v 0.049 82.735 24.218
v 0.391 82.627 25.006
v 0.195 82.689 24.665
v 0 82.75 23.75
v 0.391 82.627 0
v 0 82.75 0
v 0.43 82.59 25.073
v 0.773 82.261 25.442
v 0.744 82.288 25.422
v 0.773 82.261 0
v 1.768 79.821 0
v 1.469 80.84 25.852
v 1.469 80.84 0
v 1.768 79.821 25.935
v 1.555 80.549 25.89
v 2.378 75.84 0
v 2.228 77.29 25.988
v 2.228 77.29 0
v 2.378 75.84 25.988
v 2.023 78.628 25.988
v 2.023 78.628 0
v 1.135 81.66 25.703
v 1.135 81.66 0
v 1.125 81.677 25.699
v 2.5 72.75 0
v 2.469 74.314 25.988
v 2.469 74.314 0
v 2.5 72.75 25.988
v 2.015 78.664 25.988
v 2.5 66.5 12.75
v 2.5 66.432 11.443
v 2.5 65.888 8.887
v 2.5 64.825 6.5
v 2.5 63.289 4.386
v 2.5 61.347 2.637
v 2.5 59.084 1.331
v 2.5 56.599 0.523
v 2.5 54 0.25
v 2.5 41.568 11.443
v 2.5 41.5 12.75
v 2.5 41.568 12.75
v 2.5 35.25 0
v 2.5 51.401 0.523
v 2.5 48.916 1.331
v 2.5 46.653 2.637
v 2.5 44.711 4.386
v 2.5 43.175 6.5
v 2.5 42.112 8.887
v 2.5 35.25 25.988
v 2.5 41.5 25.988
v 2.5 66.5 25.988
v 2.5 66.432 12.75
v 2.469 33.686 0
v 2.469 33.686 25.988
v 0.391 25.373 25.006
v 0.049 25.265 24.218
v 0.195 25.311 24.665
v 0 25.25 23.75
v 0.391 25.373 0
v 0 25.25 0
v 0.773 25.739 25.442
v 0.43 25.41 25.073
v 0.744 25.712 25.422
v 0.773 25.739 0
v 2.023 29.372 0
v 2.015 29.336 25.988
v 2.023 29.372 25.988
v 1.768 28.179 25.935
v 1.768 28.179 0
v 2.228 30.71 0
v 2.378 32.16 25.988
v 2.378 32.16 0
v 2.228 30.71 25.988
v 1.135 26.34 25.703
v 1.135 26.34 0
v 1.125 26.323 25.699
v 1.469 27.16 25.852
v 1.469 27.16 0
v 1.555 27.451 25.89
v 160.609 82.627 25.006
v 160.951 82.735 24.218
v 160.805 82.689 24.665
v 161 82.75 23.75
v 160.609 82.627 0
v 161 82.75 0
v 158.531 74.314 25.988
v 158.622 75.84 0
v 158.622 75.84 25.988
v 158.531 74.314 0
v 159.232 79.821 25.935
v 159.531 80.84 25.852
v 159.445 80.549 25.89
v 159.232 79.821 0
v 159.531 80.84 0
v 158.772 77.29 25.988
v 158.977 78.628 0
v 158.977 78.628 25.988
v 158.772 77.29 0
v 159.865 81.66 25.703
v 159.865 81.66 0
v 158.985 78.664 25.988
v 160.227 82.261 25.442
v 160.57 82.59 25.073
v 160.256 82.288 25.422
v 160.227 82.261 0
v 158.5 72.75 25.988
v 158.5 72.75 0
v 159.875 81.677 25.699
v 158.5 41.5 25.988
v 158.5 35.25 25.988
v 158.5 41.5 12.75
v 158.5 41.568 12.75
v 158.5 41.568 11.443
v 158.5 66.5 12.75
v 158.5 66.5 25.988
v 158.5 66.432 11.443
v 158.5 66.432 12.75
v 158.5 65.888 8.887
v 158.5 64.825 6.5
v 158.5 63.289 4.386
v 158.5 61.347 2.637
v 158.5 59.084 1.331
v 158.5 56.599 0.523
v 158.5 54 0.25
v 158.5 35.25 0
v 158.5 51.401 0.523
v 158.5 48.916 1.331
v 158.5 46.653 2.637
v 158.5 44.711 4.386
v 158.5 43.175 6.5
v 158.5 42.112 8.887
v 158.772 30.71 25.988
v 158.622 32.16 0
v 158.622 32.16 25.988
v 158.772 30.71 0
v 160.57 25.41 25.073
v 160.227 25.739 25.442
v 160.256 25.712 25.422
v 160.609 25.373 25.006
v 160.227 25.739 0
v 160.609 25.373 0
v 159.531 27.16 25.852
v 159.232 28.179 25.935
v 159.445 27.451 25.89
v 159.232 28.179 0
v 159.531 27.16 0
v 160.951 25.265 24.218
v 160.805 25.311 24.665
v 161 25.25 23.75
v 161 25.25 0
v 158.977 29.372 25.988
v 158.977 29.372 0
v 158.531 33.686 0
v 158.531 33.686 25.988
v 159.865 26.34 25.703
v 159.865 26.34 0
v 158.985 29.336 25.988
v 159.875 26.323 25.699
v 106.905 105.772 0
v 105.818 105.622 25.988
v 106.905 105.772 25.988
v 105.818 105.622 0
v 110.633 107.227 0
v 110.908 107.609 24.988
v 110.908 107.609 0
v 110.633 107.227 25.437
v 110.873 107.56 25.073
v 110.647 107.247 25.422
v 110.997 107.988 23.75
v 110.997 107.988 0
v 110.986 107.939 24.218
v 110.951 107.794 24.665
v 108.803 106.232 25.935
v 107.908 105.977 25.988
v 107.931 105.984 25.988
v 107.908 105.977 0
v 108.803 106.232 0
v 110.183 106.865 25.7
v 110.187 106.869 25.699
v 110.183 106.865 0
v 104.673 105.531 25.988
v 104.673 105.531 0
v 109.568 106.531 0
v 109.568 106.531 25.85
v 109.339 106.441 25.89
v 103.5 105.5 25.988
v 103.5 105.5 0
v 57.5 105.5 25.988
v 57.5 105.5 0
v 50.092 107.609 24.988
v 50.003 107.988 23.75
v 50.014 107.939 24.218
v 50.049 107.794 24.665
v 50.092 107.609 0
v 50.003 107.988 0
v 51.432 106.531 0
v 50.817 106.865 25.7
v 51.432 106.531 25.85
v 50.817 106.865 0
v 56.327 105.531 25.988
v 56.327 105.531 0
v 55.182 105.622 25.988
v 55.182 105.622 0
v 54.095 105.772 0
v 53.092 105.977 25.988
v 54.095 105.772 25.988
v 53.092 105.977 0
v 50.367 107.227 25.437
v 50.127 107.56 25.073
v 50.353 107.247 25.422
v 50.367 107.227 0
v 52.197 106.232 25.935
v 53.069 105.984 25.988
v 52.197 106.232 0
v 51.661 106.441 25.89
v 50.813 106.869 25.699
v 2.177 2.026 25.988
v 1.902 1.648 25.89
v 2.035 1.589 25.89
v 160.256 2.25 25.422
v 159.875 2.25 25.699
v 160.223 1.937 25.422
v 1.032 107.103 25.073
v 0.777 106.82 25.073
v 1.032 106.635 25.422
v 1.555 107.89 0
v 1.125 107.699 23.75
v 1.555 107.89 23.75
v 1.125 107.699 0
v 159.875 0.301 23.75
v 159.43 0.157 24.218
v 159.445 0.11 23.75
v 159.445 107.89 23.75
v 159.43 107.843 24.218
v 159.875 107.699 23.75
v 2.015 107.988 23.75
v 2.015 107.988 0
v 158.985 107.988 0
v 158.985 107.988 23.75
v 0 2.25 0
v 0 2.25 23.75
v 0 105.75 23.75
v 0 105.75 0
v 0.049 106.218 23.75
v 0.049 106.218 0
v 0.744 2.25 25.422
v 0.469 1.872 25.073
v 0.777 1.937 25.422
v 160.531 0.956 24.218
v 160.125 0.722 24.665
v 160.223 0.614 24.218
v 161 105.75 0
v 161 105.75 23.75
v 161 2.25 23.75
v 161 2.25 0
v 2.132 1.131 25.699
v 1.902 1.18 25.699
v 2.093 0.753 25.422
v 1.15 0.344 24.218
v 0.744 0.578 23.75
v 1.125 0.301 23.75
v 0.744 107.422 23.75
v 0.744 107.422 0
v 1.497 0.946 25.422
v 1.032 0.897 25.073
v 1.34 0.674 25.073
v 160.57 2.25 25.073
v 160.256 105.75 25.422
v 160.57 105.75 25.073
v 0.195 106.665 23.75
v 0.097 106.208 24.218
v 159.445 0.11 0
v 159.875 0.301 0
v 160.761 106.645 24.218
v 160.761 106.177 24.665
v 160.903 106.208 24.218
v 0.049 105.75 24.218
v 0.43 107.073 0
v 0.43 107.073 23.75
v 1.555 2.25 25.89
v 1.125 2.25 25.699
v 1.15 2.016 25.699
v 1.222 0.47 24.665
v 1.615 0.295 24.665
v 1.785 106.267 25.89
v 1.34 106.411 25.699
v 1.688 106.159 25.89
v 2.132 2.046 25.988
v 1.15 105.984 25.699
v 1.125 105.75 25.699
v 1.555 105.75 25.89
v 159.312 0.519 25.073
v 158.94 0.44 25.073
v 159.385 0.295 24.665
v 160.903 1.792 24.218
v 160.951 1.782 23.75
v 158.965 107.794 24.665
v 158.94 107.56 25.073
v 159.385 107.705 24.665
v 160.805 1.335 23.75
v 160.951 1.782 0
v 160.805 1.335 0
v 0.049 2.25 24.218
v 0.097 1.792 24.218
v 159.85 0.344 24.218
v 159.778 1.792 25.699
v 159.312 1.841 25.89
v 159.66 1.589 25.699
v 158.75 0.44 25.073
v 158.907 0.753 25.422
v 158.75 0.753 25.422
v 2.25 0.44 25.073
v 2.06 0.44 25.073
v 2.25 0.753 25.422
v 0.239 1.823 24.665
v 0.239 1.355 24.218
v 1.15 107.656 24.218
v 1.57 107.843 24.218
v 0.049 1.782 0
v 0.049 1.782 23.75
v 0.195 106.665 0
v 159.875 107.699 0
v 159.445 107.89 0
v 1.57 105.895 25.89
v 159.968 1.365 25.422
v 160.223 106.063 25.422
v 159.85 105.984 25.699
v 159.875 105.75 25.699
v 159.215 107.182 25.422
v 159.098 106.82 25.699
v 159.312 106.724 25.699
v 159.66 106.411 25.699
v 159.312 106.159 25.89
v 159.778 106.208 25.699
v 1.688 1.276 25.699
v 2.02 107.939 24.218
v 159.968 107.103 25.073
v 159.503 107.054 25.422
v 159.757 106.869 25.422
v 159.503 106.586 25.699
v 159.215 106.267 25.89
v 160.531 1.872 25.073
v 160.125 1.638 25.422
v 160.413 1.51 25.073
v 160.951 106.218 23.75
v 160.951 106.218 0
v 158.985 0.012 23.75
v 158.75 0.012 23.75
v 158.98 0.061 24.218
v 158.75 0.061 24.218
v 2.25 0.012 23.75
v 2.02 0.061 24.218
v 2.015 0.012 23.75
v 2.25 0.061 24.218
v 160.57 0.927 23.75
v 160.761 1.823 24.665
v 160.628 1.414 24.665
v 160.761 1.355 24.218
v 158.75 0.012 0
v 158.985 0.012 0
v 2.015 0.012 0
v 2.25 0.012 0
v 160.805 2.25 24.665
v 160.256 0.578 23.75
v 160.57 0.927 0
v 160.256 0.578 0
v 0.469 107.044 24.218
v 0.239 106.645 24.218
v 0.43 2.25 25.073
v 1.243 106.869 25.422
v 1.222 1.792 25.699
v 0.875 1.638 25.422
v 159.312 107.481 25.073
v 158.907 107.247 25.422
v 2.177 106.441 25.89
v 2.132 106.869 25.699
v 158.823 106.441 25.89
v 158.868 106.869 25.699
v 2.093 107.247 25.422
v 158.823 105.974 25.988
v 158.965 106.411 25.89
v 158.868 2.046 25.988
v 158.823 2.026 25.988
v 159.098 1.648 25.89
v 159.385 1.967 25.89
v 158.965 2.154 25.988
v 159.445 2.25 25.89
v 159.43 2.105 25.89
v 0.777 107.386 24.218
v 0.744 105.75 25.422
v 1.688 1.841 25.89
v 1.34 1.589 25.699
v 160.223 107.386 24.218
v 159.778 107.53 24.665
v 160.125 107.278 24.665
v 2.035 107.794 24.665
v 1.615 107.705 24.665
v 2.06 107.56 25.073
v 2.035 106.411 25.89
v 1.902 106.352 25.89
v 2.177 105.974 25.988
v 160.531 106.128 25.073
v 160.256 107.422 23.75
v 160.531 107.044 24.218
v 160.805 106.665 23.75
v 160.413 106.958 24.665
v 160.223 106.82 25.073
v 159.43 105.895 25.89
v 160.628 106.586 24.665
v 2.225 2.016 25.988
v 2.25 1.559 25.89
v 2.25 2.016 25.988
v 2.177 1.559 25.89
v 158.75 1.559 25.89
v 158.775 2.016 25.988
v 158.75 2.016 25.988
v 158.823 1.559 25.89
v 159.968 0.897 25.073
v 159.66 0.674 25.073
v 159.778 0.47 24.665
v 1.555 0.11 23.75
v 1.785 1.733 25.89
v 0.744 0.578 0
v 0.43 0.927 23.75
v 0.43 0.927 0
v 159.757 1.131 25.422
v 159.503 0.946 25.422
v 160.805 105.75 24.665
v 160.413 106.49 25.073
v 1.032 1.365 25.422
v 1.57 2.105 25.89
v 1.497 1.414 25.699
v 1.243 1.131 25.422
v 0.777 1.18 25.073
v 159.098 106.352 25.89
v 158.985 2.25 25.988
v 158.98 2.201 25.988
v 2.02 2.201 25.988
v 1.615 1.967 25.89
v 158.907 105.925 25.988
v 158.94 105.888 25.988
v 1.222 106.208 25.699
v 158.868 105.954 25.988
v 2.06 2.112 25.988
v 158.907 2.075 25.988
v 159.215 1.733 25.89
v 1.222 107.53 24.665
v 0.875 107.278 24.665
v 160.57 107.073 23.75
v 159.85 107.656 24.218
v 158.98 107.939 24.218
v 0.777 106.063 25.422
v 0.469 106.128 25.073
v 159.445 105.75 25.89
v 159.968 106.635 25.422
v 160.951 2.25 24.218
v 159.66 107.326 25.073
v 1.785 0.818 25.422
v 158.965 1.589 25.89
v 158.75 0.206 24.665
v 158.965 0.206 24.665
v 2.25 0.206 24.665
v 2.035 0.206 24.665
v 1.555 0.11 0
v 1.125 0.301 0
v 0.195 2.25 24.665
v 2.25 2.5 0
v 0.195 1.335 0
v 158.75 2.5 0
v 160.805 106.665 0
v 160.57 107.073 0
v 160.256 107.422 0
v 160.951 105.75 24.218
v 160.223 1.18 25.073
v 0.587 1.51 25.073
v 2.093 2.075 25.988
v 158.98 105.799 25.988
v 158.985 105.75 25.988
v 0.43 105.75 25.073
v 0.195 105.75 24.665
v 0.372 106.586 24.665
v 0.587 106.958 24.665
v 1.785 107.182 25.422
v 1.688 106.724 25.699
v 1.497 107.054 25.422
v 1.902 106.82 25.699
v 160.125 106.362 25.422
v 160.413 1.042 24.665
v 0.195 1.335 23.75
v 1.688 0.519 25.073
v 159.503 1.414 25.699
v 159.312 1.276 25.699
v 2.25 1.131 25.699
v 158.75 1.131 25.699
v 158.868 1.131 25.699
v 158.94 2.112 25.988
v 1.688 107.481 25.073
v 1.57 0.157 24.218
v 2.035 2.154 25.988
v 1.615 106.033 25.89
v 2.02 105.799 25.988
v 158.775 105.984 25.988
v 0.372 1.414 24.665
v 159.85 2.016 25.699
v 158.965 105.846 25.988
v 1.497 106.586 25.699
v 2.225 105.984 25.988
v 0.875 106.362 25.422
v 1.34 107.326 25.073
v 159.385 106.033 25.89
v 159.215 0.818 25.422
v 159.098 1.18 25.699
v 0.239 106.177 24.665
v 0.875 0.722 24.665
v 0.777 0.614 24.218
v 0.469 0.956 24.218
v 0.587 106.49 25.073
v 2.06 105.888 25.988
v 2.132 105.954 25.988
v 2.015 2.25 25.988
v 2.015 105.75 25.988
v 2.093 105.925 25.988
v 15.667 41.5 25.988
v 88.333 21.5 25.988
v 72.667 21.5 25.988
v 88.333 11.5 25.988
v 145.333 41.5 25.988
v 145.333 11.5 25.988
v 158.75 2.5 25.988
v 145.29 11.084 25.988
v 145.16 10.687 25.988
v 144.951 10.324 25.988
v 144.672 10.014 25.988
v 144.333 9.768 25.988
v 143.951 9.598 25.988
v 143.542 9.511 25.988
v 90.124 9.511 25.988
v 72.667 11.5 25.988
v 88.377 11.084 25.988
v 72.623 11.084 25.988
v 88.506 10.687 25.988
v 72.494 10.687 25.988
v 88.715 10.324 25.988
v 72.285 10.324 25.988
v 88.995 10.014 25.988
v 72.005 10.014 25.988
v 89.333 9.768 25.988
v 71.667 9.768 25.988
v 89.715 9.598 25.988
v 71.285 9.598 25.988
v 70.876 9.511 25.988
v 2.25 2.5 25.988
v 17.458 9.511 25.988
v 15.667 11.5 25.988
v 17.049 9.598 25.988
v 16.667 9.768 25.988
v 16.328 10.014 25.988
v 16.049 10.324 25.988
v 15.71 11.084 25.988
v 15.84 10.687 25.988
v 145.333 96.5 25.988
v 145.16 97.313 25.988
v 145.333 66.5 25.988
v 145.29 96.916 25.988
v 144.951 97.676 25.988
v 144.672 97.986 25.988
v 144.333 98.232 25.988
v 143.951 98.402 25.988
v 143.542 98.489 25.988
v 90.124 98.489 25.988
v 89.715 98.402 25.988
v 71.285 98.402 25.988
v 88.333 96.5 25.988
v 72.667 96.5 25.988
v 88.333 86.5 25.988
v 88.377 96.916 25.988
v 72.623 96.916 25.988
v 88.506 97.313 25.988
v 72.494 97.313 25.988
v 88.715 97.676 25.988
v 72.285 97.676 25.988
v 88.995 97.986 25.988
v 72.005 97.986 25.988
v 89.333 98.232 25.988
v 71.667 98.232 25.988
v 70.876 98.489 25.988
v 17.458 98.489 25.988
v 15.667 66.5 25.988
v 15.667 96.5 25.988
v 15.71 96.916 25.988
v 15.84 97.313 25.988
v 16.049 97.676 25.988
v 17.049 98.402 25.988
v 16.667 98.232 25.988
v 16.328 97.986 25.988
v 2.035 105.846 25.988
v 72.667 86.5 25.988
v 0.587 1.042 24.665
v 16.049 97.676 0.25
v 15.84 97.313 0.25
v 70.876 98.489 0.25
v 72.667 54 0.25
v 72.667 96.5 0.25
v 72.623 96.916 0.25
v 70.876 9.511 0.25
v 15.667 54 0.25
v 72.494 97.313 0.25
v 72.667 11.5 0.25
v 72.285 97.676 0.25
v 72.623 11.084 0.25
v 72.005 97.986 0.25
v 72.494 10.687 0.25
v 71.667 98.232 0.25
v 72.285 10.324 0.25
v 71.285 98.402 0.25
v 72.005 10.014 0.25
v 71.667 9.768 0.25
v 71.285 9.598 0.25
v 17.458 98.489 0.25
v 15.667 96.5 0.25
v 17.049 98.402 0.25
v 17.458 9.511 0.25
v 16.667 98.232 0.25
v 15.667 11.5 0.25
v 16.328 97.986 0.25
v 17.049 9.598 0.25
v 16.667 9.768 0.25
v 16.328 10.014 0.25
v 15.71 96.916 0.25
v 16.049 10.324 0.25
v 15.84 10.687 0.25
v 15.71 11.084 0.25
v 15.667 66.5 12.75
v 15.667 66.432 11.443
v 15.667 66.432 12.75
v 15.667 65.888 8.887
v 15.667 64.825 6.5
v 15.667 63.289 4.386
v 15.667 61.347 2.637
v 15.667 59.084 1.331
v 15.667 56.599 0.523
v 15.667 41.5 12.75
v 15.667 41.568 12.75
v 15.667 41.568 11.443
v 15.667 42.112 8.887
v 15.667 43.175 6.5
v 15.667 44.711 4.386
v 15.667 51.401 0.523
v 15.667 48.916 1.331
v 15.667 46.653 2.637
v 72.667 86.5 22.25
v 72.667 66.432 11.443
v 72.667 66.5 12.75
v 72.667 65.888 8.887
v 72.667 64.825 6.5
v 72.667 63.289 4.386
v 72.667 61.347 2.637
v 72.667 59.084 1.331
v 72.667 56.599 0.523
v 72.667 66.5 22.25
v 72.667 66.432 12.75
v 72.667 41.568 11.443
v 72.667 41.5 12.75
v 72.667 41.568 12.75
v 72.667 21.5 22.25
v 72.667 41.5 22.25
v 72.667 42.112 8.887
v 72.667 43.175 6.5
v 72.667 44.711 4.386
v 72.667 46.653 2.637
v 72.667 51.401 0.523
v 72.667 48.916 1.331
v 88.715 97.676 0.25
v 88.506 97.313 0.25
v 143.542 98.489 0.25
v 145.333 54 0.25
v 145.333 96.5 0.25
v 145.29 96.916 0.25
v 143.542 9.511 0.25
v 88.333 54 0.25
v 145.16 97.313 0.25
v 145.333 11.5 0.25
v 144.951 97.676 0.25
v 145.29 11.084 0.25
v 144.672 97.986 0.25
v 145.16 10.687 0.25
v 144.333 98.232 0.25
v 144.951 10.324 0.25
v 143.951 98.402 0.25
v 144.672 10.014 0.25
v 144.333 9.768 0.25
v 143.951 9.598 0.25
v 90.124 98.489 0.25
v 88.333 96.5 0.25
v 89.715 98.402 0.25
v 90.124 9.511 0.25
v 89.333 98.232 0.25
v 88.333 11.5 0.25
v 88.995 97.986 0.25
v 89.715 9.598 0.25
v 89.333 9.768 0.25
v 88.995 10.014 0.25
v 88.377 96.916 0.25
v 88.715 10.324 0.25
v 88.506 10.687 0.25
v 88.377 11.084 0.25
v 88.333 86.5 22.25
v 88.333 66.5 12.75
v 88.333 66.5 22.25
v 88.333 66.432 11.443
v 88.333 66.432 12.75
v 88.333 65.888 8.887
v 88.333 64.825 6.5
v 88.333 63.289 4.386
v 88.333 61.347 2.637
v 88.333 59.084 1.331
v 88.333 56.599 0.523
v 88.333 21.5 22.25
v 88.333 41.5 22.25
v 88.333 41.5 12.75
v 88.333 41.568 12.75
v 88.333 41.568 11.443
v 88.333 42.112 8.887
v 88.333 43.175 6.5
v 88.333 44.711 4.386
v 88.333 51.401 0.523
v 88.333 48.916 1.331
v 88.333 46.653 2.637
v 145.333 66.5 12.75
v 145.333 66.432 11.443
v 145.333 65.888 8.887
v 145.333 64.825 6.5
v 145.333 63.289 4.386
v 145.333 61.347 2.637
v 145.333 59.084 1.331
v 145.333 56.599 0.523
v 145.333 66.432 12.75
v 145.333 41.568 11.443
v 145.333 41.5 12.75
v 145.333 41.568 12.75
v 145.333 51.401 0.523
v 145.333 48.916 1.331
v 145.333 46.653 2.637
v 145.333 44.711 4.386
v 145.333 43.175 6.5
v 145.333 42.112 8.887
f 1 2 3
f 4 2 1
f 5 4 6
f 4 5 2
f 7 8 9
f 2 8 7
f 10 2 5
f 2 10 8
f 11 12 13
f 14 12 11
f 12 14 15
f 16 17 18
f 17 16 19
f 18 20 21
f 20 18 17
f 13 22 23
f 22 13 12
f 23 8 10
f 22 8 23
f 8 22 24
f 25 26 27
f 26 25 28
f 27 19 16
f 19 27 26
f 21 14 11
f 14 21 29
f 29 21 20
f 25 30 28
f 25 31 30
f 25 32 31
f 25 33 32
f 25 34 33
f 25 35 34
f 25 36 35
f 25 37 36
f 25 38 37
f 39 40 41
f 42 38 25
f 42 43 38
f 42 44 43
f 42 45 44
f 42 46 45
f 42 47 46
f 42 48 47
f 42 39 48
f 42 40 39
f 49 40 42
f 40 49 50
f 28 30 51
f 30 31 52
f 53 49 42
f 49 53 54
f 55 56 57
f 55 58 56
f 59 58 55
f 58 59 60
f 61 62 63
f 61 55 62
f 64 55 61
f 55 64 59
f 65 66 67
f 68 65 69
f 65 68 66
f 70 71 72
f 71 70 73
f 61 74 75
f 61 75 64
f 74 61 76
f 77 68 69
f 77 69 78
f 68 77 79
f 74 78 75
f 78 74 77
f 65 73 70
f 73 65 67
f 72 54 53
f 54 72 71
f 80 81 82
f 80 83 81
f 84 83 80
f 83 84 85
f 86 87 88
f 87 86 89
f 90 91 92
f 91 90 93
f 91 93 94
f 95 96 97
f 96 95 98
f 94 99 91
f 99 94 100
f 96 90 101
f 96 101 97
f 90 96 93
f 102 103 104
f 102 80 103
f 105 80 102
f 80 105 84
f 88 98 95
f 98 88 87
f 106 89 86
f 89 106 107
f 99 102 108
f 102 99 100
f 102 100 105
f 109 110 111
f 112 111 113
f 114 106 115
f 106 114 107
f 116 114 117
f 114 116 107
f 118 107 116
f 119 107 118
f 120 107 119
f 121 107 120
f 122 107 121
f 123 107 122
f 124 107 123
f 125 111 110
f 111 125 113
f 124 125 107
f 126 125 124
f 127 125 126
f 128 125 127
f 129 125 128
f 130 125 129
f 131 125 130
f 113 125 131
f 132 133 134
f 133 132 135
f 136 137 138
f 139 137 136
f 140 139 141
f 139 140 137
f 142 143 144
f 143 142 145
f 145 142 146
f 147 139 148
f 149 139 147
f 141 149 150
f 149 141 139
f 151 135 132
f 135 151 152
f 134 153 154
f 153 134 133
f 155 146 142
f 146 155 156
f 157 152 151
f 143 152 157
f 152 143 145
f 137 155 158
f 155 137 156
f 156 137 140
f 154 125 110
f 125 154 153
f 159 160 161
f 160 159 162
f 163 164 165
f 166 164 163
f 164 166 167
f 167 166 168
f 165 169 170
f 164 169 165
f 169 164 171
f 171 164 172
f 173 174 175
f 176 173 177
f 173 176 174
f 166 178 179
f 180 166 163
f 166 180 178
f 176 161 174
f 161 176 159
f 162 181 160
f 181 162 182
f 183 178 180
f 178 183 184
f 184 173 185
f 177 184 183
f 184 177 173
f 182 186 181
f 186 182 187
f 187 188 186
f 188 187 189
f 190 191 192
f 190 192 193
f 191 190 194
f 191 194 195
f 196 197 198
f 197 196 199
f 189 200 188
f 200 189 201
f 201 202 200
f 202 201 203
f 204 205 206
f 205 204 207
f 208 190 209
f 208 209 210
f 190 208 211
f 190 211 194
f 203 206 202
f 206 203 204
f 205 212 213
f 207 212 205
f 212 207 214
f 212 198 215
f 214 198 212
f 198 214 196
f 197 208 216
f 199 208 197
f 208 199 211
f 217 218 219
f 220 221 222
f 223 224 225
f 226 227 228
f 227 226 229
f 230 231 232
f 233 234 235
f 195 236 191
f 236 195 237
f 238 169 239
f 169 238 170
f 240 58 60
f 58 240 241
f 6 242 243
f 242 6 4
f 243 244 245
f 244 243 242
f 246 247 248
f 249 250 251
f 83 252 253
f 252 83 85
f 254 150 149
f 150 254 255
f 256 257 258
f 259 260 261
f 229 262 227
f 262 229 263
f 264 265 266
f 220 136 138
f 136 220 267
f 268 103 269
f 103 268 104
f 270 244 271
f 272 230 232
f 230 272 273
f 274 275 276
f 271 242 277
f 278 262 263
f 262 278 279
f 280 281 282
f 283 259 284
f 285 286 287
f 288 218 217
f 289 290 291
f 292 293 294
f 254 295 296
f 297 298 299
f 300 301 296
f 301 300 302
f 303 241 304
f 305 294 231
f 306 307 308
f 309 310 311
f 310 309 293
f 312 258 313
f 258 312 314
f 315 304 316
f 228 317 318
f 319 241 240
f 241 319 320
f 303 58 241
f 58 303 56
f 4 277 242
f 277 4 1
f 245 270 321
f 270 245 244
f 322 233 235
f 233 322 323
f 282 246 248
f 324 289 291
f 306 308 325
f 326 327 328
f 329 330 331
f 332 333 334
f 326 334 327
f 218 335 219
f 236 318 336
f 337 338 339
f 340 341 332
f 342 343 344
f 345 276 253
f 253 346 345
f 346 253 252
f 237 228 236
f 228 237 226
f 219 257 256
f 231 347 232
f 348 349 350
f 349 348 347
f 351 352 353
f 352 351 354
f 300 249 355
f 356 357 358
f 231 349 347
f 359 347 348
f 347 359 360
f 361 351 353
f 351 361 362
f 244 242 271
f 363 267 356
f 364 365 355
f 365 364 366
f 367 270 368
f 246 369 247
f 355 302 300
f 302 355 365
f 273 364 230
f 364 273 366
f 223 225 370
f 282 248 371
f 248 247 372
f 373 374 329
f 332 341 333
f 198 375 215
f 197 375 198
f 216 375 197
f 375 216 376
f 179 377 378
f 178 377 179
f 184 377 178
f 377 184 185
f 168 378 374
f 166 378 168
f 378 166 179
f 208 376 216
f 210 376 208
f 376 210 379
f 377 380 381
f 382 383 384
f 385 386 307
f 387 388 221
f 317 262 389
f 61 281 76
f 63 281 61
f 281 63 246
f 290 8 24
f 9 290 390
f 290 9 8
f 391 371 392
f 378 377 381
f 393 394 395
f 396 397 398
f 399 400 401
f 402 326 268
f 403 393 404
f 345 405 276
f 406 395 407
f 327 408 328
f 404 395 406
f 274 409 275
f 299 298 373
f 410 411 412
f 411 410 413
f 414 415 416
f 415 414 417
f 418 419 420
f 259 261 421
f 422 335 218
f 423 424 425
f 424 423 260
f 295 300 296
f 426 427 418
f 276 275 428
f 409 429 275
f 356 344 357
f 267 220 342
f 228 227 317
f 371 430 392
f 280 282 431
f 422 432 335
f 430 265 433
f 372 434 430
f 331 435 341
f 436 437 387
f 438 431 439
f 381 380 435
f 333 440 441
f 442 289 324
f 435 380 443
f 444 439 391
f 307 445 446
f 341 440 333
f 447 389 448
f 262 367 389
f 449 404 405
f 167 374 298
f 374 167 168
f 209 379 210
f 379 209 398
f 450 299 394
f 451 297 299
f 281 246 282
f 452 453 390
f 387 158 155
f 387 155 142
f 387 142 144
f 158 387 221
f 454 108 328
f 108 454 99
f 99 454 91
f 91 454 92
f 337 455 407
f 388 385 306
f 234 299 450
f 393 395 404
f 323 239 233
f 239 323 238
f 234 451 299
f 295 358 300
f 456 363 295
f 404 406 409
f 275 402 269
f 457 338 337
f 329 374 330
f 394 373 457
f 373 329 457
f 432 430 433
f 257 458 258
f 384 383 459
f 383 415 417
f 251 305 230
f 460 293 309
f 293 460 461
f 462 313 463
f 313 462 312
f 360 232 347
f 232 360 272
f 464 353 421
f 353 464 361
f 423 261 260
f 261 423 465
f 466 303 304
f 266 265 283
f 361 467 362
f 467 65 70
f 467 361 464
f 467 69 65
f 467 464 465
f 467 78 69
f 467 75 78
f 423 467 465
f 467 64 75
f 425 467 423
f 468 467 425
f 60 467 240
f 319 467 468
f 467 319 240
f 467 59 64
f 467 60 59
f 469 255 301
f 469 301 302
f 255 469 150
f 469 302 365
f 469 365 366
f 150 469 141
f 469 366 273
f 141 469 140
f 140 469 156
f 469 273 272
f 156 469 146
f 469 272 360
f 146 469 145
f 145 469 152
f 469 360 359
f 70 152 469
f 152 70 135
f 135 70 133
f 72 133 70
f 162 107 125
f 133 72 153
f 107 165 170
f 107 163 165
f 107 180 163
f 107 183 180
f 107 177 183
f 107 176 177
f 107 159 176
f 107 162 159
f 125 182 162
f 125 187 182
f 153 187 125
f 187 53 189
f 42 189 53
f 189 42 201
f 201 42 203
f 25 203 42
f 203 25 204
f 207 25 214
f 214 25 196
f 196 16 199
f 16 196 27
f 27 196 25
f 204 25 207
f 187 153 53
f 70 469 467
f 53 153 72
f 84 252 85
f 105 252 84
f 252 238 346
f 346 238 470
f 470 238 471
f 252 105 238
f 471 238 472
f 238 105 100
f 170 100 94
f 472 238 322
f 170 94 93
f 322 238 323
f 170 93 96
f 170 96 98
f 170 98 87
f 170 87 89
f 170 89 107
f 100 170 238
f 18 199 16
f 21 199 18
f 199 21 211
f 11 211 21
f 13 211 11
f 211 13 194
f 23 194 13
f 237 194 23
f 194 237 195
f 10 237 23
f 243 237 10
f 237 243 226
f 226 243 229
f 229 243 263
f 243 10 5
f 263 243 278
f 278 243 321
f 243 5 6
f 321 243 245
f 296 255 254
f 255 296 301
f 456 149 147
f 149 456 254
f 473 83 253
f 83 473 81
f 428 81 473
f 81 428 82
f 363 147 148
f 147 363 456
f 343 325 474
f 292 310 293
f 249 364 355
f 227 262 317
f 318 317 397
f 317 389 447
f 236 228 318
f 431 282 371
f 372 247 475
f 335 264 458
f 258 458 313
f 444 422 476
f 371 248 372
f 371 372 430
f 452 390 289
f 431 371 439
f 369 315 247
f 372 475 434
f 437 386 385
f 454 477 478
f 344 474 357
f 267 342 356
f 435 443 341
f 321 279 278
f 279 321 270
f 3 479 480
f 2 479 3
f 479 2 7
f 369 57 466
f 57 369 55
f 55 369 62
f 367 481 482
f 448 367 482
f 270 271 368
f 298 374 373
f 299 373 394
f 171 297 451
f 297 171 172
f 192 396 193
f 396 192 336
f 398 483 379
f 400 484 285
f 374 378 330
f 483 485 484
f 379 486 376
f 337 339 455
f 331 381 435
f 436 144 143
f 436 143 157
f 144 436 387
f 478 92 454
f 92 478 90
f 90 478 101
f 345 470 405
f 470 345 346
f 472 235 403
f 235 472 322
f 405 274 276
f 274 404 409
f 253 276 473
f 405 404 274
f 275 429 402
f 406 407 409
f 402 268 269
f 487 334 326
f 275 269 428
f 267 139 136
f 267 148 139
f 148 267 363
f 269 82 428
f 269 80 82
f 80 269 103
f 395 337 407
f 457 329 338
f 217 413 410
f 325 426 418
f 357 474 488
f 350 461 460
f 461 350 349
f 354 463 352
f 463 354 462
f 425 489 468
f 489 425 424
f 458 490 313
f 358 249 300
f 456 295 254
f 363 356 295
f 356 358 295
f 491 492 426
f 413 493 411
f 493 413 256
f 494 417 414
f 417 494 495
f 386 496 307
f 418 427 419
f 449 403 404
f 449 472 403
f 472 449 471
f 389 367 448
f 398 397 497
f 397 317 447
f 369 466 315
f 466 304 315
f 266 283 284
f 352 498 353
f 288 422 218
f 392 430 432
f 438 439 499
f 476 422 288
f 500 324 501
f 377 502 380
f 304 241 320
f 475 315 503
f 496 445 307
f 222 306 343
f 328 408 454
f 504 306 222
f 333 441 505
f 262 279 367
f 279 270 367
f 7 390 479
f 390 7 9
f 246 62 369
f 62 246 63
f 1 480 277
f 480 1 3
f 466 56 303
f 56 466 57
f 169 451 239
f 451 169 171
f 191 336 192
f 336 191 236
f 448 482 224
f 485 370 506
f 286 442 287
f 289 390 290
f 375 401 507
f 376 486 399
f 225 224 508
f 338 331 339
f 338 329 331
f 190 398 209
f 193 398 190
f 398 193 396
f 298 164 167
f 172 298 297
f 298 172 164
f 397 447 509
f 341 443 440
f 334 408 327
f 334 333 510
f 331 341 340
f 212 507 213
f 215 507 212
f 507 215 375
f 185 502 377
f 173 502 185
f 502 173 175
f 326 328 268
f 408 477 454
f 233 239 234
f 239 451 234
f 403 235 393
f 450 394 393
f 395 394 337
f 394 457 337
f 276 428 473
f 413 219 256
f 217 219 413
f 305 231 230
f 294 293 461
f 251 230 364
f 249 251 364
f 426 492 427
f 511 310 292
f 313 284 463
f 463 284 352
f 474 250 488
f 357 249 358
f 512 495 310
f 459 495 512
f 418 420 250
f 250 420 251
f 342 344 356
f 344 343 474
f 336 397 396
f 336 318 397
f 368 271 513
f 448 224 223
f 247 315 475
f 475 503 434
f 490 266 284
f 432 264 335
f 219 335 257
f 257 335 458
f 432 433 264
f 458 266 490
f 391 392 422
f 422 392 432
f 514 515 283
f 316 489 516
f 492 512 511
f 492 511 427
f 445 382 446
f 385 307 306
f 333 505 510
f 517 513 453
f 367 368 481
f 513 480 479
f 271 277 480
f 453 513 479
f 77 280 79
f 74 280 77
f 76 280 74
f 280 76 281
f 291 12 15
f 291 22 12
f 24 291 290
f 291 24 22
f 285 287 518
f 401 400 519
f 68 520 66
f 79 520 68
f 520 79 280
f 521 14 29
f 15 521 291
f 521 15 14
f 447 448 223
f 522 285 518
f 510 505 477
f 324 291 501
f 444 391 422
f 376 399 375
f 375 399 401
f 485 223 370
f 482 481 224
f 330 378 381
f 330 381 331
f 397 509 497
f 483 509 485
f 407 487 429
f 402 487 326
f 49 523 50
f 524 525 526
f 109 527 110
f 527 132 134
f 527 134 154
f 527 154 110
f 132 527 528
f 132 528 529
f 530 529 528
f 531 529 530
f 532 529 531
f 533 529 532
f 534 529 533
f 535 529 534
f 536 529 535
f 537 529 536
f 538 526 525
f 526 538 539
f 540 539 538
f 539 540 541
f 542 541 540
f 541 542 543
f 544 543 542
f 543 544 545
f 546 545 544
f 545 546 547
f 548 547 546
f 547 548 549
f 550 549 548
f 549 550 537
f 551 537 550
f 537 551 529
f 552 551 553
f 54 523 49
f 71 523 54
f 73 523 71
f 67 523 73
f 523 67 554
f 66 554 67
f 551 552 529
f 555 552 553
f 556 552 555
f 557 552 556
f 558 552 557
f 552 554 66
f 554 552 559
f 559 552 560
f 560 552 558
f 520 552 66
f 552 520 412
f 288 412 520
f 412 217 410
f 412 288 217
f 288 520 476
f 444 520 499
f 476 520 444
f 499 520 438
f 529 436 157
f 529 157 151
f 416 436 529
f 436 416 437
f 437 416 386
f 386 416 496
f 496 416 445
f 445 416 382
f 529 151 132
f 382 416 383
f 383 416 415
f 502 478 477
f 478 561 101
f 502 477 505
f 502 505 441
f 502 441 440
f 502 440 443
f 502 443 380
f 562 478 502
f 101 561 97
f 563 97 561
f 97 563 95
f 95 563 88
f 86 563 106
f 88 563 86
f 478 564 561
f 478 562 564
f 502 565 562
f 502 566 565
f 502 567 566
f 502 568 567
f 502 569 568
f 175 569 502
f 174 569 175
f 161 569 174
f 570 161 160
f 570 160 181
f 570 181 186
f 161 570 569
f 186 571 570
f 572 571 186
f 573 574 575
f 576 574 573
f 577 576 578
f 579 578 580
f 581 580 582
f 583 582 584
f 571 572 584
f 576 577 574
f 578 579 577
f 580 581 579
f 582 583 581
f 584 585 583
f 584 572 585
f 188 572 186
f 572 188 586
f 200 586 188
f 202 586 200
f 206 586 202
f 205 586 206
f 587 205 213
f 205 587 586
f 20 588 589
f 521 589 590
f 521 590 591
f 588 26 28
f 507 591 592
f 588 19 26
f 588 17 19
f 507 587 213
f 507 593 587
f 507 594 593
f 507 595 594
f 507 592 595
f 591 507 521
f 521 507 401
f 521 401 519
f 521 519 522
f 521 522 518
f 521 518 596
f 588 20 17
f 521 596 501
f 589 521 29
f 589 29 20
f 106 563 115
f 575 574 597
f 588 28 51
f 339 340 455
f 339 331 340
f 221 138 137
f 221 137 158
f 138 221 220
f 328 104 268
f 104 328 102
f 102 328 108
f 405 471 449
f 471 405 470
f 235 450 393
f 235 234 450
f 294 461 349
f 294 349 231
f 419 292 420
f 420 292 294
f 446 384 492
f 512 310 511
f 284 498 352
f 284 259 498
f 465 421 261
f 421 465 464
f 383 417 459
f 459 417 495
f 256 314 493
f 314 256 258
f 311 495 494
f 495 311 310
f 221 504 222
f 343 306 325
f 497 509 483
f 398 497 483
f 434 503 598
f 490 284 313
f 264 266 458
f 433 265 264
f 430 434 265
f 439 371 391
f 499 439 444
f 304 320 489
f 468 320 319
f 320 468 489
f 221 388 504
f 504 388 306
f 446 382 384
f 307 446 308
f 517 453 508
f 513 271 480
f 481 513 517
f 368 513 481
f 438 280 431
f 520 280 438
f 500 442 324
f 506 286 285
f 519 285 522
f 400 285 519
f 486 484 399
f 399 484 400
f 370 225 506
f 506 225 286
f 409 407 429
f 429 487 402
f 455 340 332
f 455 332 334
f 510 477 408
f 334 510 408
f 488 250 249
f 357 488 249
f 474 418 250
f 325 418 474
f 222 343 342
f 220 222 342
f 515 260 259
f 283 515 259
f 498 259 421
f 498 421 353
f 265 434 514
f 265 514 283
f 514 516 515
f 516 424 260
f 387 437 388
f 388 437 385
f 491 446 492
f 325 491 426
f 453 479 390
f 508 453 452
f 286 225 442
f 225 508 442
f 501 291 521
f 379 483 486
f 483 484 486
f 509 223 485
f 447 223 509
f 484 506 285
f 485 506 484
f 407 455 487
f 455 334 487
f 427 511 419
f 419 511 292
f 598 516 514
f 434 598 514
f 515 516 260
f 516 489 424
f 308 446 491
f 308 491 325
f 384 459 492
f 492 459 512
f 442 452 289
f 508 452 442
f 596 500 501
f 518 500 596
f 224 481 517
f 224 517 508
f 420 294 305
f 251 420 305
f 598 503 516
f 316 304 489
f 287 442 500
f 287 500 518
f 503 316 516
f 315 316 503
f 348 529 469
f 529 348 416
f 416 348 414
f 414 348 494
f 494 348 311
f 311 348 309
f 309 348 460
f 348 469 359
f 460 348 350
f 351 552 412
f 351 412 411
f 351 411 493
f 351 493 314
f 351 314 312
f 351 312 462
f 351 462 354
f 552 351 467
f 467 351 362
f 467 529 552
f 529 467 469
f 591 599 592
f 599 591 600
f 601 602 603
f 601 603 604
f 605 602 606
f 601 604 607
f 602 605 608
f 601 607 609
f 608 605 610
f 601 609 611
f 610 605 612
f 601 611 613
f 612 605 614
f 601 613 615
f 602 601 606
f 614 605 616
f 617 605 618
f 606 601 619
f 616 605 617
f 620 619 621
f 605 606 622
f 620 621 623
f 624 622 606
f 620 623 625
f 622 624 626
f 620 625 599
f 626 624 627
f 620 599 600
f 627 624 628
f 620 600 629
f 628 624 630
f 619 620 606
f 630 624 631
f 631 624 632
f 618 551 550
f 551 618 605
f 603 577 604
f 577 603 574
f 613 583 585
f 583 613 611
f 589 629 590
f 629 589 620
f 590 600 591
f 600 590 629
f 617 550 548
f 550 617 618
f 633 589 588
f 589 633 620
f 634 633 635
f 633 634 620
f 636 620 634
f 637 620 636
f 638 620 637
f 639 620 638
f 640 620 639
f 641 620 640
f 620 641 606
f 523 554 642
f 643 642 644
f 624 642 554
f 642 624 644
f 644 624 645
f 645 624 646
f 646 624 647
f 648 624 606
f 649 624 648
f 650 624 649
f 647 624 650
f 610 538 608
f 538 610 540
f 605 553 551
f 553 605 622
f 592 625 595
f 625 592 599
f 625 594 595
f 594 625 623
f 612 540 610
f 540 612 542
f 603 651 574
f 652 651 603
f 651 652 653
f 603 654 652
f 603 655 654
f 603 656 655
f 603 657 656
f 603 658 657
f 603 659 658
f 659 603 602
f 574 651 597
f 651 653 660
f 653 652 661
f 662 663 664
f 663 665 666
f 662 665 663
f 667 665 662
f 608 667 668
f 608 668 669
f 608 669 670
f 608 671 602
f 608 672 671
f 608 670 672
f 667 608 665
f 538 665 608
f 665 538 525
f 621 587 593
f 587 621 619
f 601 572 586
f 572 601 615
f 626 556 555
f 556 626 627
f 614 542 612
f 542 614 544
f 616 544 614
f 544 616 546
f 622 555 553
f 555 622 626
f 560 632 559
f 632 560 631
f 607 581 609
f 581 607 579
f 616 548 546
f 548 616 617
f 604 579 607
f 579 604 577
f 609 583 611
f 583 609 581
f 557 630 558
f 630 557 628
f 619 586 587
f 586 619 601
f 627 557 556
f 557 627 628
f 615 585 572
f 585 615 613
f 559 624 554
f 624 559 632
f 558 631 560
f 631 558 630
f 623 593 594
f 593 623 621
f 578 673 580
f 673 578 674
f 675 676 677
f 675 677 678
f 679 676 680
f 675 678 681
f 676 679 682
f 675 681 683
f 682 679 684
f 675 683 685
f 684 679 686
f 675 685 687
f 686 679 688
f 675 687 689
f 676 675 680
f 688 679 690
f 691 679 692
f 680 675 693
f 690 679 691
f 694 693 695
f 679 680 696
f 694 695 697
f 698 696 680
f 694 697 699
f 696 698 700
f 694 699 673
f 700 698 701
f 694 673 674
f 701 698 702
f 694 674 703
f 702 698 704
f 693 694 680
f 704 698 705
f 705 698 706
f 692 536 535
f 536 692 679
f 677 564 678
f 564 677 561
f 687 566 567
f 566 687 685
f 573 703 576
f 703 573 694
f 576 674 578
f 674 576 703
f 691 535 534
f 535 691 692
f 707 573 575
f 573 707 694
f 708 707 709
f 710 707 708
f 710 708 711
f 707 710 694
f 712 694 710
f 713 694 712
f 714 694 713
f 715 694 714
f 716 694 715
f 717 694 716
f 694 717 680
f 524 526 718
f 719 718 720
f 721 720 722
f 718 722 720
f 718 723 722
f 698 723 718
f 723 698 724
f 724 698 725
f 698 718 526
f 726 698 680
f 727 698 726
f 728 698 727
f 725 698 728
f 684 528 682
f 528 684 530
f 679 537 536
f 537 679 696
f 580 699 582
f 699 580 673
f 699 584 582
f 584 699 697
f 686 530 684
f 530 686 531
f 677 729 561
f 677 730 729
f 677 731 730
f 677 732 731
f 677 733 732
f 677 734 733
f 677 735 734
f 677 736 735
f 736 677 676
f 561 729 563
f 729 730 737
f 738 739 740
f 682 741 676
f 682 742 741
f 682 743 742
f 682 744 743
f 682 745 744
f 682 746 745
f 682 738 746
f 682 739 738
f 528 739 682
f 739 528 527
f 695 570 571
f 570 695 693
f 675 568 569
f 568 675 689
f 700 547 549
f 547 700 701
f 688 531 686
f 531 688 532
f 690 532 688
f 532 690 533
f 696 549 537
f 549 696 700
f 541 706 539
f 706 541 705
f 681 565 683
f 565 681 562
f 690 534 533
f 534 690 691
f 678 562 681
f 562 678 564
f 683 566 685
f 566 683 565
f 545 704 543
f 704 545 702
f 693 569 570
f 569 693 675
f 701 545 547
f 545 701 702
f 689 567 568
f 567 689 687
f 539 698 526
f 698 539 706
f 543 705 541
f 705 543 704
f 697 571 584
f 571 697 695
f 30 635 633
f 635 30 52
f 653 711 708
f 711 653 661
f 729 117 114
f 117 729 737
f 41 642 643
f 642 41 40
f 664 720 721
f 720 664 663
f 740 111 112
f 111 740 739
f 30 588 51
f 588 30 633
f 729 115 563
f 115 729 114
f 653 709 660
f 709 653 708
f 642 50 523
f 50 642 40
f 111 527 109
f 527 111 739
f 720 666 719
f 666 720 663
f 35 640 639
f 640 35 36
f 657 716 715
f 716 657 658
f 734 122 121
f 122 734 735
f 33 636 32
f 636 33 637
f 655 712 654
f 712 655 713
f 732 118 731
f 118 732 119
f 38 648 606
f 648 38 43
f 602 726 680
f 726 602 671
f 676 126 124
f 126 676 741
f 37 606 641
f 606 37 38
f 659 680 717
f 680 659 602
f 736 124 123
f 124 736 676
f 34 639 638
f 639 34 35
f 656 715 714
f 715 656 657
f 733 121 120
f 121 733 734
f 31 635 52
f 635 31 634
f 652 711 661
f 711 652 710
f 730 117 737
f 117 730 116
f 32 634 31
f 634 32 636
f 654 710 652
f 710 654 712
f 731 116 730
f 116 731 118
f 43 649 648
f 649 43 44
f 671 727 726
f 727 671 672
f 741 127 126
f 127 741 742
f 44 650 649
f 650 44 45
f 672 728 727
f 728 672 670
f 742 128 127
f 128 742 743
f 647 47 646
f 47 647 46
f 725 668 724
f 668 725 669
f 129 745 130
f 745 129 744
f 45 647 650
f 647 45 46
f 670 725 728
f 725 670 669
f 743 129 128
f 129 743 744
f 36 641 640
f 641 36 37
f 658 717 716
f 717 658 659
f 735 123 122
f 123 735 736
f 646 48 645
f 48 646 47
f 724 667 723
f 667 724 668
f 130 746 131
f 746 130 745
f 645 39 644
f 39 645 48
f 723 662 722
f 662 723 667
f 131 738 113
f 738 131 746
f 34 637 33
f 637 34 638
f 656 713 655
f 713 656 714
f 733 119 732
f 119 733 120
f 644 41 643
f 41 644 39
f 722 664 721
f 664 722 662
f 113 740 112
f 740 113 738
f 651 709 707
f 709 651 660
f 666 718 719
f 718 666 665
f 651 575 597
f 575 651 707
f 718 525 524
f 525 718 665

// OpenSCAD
// file: ../roundedcube.scad
// Aquired from https://danielupshaw.com/openscad-rounded-corners/
// License unknown

// Higher definition curves
$fs = 0.01;

module roundedcube(size = [1, 1, 1], center = false, radius = 0.5, apply_to = "all") {
	// If single value, convert to [x, y, z] vector
	size = (size[0] == undef) ? [size, size, size] : size;

	translate_min = radius;
	translate_xmax = size[0] - radius;
	translate_ymax = size[1] - radius;
	translate_zmax = size[2] - radius;

	diameter = radius * 2;

	module build_point(type = "sphere", rotate = [0, 0, 0]) {
		if (type == "sphere") {
			sphere(r = radius);
		} else if (type == "cylinder") {
			rotate(a = rotate)
			cylinder(h = diameter, r = radius, center = true);
		}
	}

	obj_translate = (center == false) ?
		[0, 0, 0] : [
			-(size[0] / 2),
			-(size[1] / 2),
			-(size[2] / 2)
		];

	translate(v = obj_translate) {
		hull() {
			for (translate_x = [translate_min, translate_xmax]) {
				x_at = (translate_x == translate_min) ? "min" : "max";
				for (translate_y = [translate_min, translate_ymax]) {
					y_at = (translate_y == translate_min) ? "min" : "max";
					for (translate_z = [translate_min, translate_zmax]) {
						z_at = (translate_z == translate_min) ? "min" : "max";

						translate(v = [translate_x, translate_y, translate_z])
						if (
							(apply_to == "all") ||
							(apply_to == "xmin" && x_at == "min") || (apply_to == "xmax" && x_at == "max") ||
							(apply_to == "ymin" && y_at == "min") || (apply_to == "ymax" && y_at == "max") ||
							(apply_to == "zmin" && z_at == "min") || (apply_to == "zmax" && z_at == "max")
						) {
							build_point("sphere");
						} else {
							rotate =
								(apply_to == "xmin" || apply_to == "xmax" || apply_to == "x") ? [0, 90, 0] : (
								(apply_to == "ymin" || apply_to == "ymax" || apply_to == "y") ? [90, 90, 0] :
								[0, 0, 0]
							);
							build_point("cylinder", rotate);
						}
					}
				}
			}
		}
	}
}
// file: ../photo_base.scad
use <./roundedcube.scad>

BOX_WIDTH = 161;
BOX_DEPTH = 108;
BOX_HEIGHT = 26;

BOX_RADIUS = 2.25;

LABEL_WIDTH = BOX_WIDTH - BOX_RADIUS * 2;
LABEL_DEPTH = 2.5;

SIDE_CURVE_DEPTH = 20;
SIDE_CURVE_DIAMETER = 5;
SIDE_INNER_DEPTH = 37.5;

// total = 48.5
TOP_CURVE_WIDTH = 15;
TOP_CURVE_DIAMETER = 5;
TOP_INNER_WIDTH = 46;

render_helper = 1; // Helps the quick render not have a "skin" on top of the hole

function box_width() = BOX_WIDTH;
function box_depth() = BOX_DEPTH;
function box_height() = BOX_HEIGHT;
function side_curve() = SIDE_CURVE_DIAMETER / 2;
function top_curve() = TOP_CURVE_DIAMETER / 2;
function label_depth() = LABEL_DEPTH;
function center_width_offset(width) = (BOX_WIDTH - width) / 2;
function triple_width_offset(width) = (BOX_WIDTH - width * 2) / 3;
function triple_width_offset_single(width) = (BOX_WIDTH - width) / 3;
function quad_width_offset_single(width) = (BOX_WIDTH - width) / 4;
function center_depth_offset(depth) = (BOX_DEPTH - depth) / 2;
function triple_depth_offset(depth) = (BOX_DEPTH - depth) / 3;
function triple_depth_offset_single(width) = (BOX_DEPTH - width) / 3;

module base_block() {
    roundedcube(
        [BOX_WIDTH, BOX_DEPTH, BOX_HEIGHT],
        radius = BOX_RADIUS,
        apply_to = "zmax"
    );
}

module label_cutout() {
    offset_x = (BOX_WIDTH - LABEL_WIDTH) / 2;
    translate([offset_x, -render_helper, -render_helper])
    cube([LABEL_WIDTH, LABEL_DEPTH + render_helper, BOX_HEIGHT + render_helper * 2]);
}

module side_cutout() {
    height = BOX_HEIGHT + render_helper * 2;
    half_side = SIDE_INNER_DEPTH / 2;
    
    translate([0, half_side, -render_helper])
    linear_extrude(height)
    resize([SIDE_CURVE_DIAMETER, SIDE_CURVE_DEPTH])
    circle(SIDE_CURVE_DIAMETER, $fn = 40);
    
    translate([-SIDE_CURVE_DIAMETER / 2, -half_side, -render_helper])
    cube([SIDE_CURVE_DIAMETER, SIDE_INNER_DEPTH, height]);
    
    translate([0, -half_side, -render_helper])
    linear_extrude(height)
    resize([SIDE_CURVE_DIAMETER, SIDE_CURVE_DEPTH])
    circle(SIDE_CURVE_DIAMETER, $fn = 40);
}

module side_cutouts() {
    translate([0, BOX_DEPTH / 2, 0])
    side_cutout();
    
    translate([BOX_WIDTH, BOX_DEPTH / 2, 0])
    side_cutout();
}

module top_cutout() {
    height = BOX_HEIGHT + render_helper * 2;
    half_side = TOP_INNER_WIDTH / 2;
    
    translate([BOX_WIDTH / 2, BOX_DEPTH, 0])
    union() {
        translate([half_side, 0, -render_helper])
        linear_extrude(height)
        rotate([0, 0, 90])
        resize([TOP_CURVE_DIAMETER, TOP_CURVE_WIDTH])
        circle(TOP_CURVE_DIAMETER, $fn = 40);
        
        translate([-half_side, -TOP_CURVE_DIAMETER / 2, -render_helper])
        cube([TOP_INNER_WIDTH, TOP_CURVE_DIAMETER, height]);
        
        translate([-half_side, 0, -render_helper])
        linear_extrude(height)
        rotate([0, 0, 90])
        resize([TOP_CURVE_DIAMETER, TOP_CURVE_WIDTH])
        circle(TOP_CURVE_DIAMETER, $fn = 40);
    }
}

module photo_base() {
    difference() {
        base_block();
        label_cutout();
        side_cutouts();
        top_cutout();
    }
}

photo_base();
// file: ../utilities.scad
use <./photo_base.scad>
use <./roundedcube.scad>

render_helper = 1; // Helps the quick render not have a "skin" on top of the hole
max_height = box_height() - 1;
THUMB_WIDTH = 25;

function thumb_slot_y() = (box_depth() - THUMB_WIDTH) / 2;
function thumb_slot_y2() = (box_depth() - THUMB_WIDTH * 2) / 3;
function thumb_width() = THUMB_WIDTH;

module card_slot(
    width = 63.5,
    depth = 88.5,
    height = 17,
    radius = 2
) {
    roundedcube(
        [width, depth, height + render_helper],
        radius = radius,
        apply_to = "z"
    );
}

module thumb_slot(
    width = box_width(),
    depth = THUMB_WIDTH,
    height = box_height(),
    slot_depth = undef
) {
    
    translate_y = slot_depth == undef ? 0 : slot_depth / 2 - THUMB_WIDTH / 2;
    
    translate([0, translate_y, 0])
    union() {
        translate([0, 0, depth / 2])
        cube([width, depth, height - depth / 2 + render_helper]);
        
        translate([0, depth / 2, depth / 2])
        rotate([0, 90, 0])
        cylinder(h = width, d = depth);
    }
}

module booklet_slot(width, depth, height) {
    cube([width, depth, height + render_helper]);
}

module two_card_holder(
    width = 63.5,
    depth = 88.5,
    height = 17,
    radius = 2,
    booklet = undef
) {
    height = height > box_height() ? max_height : height;
    total_height = booklet == undef ? height : height + booklet[2];
     
    
    difference() {
        photo_base();
        
        offset_z = booklet == undef ? box_height() - height : box_height() - total_height;
        translate([0, center_depth_offset(depth), offset_z])
        union() {
            translate([triple_width_offset(width), 0, 0])
            card_slot(width, depth, total_height, radius);
            
            translate([triple_width_offset(width) * 2 + width, 0, 0])
            card_slot(width, depth, total_height, radius);
        }
        
        translate([0, center_depth_offset(THUMB_WIDTH), box_height() - total_height])
        thumb_slot(height = total_height);
        
        if (booklet != undef) {
            translate([center_width_offset(booklet[0]), center_depth_offset(booklet[1]), box_height() - booklet[2]])
            booklet_slot(booklet[0], booklet[1], booklet[2]);
        }
    }
}
// main file
use <../utilities.scad>

CARD_WIDTH = 57;
CARD_DEPTH = 89;
CARD_HEIGHT = 22;

BOOKLET_WIDTH = 93;
BOOKLET_DEPTH = 65;
BOOKLET_HEIGHT = 3.75;

booklet = [BOOKLET_WIDTH, BOOKLET_DEPTH, BOOKLET_HEIGHT];

two_card_holder(
    CARD_WIDTH,
    CARD_DEPTH,
    CARD_HEIGHT,
    booklet = booklet
);
